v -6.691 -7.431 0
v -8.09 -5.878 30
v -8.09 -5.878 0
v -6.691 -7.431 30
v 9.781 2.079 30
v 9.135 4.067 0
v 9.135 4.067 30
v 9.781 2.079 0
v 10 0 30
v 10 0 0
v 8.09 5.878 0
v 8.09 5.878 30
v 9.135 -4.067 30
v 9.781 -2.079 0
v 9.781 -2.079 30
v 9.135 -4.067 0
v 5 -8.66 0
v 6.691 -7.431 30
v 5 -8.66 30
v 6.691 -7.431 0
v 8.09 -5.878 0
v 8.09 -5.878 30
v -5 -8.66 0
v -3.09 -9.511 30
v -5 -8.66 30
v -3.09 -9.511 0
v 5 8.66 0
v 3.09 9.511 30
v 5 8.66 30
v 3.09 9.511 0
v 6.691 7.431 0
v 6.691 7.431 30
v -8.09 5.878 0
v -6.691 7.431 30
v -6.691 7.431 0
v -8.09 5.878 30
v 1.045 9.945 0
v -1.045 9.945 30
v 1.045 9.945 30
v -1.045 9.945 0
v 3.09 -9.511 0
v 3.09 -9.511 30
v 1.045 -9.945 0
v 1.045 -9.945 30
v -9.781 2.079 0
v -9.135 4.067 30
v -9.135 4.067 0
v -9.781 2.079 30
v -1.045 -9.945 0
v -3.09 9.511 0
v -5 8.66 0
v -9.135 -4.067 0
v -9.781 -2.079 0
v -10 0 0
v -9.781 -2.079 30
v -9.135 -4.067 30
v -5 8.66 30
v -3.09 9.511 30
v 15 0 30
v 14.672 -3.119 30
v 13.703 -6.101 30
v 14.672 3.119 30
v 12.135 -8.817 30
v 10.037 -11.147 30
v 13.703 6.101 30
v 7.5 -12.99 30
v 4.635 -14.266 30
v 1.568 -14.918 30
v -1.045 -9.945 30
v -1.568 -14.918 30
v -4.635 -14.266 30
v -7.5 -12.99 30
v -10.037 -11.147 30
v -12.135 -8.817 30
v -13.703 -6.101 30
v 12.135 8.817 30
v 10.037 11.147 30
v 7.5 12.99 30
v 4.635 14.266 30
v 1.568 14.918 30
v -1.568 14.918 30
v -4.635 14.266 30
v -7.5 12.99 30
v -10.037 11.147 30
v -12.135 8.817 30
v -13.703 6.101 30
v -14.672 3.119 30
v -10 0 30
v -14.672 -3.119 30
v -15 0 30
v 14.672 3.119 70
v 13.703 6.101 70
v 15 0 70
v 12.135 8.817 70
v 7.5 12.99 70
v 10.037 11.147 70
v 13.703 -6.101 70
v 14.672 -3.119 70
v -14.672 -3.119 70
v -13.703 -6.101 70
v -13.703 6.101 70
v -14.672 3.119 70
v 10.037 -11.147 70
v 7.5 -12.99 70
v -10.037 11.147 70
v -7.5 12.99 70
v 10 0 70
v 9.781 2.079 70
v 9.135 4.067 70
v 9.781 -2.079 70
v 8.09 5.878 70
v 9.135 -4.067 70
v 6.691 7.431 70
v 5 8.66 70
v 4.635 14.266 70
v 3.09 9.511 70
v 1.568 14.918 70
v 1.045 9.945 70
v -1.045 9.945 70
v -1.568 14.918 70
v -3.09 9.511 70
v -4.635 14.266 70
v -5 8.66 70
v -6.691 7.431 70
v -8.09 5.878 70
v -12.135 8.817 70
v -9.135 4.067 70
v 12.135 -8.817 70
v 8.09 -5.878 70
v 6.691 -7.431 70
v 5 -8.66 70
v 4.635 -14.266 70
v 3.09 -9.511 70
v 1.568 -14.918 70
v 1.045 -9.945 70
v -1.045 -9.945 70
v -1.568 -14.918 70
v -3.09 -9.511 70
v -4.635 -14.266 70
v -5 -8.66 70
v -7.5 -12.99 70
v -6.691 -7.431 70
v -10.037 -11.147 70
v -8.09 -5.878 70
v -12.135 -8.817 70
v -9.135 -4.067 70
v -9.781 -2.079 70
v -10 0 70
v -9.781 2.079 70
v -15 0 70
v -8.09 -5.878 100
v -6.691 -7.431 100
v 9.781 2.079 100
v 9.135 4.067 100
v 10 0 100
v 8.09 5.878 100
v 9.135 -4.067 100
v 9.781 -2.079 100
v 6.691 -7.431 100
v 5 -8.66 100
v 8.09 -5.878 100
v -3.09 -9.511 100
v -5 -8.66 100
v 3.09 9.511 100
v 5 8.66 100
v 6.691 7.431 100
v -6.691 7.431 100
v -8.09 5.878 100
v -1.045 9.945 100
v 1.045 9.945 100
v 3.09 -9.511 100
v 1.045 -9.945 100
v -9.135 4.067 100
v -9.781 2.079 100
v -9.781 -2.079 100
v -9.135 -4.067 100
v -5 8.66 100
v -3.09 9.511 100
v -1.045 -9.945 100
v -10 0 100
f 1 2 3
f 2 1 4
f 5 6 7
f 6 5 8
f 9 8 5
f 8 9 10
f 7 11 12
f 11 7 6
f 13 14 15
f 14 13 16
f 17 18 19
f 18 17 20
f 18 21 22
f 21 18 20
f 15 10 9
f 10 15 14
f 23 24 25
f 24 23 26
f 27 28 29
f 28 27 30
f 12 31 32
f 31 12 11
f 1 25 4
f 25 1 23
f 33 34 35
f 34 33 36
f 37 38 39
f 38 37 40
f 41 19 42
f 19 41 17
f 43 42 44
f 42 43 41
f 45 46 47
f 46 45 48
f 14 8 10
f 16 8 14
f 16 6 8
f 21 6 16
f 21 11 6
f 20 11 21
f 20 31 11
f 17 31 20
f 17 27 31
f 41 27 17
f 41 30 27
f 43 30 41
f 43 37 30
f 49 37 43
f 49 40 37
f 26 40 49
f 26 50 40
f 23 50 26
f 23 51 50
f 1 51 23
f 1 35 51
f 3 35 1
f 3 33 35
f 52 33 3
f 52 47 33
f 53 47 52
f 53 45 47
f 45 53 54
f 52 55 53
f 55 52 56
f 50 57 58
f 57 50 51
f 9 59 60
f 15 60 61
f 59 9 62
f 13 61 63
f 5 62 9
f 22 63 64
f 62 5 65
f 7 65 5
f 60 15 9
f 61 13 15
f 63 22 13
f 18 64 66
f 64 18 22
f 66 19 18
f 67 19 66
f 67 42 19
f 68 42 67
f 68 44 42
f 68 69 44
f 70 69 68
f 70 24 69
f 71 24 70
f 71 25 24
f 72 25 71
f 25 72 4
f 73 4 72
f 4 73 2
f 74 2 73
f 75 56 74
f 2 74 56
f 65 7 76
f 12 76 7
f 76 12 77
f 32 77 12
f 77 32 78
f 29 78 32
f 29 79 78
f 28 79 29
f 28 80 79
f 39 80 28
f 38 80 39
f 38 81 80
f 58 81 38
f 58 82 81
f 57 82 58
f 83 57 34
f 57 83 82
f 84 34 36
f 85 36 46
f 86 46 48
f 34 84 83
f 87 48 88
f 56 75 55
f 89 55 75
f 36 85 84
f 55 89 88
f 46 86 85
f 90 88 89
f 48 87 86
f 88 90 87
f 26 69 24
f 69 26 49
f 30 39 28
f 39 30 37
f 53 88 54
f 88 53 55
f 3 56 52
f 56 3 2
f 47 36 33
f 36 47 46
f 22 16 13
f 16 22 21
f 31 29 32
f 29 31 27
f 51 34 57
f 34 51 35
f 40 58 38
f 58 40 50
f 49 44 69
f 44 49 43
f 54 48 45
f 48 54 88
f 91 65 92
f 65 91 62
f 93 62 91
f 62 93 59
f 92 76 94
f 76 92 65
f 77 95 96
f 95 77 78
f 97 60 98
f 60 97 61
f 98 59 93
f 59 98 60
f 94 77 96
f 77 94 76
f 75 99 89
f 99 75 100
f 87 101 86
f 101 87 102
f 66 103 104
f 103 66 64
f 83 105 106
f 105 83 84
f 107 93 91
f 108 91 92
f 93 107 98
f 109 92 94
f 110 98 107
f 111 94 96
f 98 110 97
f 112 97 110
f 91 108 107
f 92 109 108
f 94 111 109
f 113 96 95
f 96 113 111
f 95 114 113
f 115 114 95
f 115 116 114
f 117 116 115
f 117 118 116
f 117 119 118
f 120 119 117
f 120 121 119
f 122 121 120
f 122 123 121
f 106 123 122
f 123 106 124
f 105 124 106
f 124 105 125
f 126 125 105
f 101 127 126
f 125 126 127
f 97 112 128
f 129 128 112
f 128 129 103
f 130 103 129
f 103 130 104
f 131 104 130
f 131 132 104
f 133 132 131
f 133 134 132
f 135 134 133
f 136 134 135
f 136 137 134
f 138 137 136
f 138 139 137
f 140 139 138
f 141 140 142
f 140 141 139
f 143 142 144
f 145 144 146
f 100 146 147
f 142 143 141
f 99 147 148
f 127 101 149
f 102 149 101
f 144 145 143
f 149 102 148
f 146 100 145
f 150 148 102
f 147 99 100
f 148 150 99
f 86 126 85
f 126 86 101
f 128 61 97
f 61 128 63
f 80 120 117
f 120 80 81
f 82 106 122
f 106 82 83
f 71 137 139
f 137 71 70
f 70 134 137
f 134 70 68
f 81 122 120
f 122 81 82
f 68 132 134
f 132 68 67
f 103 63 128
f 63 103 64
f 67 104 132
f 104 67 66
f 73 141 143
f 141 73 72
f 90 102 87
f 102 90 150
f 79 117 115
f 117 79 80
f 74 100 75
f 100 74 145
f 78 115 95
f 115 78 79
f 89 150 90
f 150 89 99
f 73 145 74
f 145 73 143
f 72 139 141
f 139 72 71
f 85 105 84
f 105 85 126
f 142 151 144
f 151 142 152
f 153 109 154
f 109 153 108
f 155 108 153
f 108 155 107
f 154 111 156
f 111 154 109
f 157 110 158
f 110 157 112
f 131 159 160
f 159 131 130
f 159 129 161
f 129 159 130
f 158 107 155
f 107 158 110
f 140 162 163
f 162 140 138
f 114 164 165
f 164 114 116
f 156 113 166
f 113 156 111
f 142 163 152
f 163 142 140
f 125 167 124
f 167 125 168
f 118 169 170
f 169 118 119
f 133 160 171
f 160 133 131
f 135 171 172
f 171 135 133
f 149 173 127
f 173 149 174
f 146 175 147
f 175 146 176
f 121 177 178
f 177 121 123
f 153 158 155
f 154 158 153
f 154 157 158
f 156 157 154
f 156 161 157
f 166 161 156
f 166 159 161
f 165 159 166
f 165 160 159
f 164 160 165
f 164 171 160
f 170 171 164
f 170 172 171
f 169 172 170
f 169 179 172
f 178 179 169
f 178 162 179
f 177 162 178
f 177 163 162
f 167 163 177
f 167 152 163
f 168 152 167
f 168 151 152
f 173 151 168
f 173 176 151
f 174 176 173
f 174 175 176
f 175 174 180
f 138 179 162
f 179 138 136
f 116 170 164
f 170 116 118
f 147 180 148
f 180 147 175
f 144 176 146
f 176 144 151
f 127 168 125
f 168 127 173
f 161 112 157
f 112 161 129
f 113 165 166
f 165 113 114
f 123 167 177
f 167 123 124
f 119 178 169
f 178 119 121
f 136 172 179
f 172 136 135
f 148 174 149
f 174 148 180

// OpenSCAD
// Parameters for dimensions
input_cylinder_diameter = 20; // Diameter of the input cylinder
input_cylinder_height = 30;  // Height of the input cylinder

central_cylinder_diameter = 30; // Diameter of the central cylinder
central_cylinder_height = 40;   // Height of the central cylinder

output_cylinder_diameter = 20; // Diameter of the output cylinder
output_cylinder_height = 30;  // Height of the output cylinder

// Positional offsets
input_cylinder_offset = 0; // Topmost position
central_cylinder_offset = input_cylinder_height; // Below the input cylinder
output_cylinder_offset = input_cylinder_height + central_cylinder_height; // Below the central cylinder

// Input Cylinder
translate([0, 0, input_cylinder_offset])
cylinder(h = input_cylinder_height, d = input_cylinder_diameter, center = false);

// Central Cylinder
translate([0, 0, central_cylinder_offset])
cylinder(h = central_cylinder_height, d = central_cylinder_diameter, center = false);

// Output Cylinder
translate([0, 0, output_cylinder_offset])
cylinder(h = output_cylinder_height, d = output_cylinder_diameter, center = false);
